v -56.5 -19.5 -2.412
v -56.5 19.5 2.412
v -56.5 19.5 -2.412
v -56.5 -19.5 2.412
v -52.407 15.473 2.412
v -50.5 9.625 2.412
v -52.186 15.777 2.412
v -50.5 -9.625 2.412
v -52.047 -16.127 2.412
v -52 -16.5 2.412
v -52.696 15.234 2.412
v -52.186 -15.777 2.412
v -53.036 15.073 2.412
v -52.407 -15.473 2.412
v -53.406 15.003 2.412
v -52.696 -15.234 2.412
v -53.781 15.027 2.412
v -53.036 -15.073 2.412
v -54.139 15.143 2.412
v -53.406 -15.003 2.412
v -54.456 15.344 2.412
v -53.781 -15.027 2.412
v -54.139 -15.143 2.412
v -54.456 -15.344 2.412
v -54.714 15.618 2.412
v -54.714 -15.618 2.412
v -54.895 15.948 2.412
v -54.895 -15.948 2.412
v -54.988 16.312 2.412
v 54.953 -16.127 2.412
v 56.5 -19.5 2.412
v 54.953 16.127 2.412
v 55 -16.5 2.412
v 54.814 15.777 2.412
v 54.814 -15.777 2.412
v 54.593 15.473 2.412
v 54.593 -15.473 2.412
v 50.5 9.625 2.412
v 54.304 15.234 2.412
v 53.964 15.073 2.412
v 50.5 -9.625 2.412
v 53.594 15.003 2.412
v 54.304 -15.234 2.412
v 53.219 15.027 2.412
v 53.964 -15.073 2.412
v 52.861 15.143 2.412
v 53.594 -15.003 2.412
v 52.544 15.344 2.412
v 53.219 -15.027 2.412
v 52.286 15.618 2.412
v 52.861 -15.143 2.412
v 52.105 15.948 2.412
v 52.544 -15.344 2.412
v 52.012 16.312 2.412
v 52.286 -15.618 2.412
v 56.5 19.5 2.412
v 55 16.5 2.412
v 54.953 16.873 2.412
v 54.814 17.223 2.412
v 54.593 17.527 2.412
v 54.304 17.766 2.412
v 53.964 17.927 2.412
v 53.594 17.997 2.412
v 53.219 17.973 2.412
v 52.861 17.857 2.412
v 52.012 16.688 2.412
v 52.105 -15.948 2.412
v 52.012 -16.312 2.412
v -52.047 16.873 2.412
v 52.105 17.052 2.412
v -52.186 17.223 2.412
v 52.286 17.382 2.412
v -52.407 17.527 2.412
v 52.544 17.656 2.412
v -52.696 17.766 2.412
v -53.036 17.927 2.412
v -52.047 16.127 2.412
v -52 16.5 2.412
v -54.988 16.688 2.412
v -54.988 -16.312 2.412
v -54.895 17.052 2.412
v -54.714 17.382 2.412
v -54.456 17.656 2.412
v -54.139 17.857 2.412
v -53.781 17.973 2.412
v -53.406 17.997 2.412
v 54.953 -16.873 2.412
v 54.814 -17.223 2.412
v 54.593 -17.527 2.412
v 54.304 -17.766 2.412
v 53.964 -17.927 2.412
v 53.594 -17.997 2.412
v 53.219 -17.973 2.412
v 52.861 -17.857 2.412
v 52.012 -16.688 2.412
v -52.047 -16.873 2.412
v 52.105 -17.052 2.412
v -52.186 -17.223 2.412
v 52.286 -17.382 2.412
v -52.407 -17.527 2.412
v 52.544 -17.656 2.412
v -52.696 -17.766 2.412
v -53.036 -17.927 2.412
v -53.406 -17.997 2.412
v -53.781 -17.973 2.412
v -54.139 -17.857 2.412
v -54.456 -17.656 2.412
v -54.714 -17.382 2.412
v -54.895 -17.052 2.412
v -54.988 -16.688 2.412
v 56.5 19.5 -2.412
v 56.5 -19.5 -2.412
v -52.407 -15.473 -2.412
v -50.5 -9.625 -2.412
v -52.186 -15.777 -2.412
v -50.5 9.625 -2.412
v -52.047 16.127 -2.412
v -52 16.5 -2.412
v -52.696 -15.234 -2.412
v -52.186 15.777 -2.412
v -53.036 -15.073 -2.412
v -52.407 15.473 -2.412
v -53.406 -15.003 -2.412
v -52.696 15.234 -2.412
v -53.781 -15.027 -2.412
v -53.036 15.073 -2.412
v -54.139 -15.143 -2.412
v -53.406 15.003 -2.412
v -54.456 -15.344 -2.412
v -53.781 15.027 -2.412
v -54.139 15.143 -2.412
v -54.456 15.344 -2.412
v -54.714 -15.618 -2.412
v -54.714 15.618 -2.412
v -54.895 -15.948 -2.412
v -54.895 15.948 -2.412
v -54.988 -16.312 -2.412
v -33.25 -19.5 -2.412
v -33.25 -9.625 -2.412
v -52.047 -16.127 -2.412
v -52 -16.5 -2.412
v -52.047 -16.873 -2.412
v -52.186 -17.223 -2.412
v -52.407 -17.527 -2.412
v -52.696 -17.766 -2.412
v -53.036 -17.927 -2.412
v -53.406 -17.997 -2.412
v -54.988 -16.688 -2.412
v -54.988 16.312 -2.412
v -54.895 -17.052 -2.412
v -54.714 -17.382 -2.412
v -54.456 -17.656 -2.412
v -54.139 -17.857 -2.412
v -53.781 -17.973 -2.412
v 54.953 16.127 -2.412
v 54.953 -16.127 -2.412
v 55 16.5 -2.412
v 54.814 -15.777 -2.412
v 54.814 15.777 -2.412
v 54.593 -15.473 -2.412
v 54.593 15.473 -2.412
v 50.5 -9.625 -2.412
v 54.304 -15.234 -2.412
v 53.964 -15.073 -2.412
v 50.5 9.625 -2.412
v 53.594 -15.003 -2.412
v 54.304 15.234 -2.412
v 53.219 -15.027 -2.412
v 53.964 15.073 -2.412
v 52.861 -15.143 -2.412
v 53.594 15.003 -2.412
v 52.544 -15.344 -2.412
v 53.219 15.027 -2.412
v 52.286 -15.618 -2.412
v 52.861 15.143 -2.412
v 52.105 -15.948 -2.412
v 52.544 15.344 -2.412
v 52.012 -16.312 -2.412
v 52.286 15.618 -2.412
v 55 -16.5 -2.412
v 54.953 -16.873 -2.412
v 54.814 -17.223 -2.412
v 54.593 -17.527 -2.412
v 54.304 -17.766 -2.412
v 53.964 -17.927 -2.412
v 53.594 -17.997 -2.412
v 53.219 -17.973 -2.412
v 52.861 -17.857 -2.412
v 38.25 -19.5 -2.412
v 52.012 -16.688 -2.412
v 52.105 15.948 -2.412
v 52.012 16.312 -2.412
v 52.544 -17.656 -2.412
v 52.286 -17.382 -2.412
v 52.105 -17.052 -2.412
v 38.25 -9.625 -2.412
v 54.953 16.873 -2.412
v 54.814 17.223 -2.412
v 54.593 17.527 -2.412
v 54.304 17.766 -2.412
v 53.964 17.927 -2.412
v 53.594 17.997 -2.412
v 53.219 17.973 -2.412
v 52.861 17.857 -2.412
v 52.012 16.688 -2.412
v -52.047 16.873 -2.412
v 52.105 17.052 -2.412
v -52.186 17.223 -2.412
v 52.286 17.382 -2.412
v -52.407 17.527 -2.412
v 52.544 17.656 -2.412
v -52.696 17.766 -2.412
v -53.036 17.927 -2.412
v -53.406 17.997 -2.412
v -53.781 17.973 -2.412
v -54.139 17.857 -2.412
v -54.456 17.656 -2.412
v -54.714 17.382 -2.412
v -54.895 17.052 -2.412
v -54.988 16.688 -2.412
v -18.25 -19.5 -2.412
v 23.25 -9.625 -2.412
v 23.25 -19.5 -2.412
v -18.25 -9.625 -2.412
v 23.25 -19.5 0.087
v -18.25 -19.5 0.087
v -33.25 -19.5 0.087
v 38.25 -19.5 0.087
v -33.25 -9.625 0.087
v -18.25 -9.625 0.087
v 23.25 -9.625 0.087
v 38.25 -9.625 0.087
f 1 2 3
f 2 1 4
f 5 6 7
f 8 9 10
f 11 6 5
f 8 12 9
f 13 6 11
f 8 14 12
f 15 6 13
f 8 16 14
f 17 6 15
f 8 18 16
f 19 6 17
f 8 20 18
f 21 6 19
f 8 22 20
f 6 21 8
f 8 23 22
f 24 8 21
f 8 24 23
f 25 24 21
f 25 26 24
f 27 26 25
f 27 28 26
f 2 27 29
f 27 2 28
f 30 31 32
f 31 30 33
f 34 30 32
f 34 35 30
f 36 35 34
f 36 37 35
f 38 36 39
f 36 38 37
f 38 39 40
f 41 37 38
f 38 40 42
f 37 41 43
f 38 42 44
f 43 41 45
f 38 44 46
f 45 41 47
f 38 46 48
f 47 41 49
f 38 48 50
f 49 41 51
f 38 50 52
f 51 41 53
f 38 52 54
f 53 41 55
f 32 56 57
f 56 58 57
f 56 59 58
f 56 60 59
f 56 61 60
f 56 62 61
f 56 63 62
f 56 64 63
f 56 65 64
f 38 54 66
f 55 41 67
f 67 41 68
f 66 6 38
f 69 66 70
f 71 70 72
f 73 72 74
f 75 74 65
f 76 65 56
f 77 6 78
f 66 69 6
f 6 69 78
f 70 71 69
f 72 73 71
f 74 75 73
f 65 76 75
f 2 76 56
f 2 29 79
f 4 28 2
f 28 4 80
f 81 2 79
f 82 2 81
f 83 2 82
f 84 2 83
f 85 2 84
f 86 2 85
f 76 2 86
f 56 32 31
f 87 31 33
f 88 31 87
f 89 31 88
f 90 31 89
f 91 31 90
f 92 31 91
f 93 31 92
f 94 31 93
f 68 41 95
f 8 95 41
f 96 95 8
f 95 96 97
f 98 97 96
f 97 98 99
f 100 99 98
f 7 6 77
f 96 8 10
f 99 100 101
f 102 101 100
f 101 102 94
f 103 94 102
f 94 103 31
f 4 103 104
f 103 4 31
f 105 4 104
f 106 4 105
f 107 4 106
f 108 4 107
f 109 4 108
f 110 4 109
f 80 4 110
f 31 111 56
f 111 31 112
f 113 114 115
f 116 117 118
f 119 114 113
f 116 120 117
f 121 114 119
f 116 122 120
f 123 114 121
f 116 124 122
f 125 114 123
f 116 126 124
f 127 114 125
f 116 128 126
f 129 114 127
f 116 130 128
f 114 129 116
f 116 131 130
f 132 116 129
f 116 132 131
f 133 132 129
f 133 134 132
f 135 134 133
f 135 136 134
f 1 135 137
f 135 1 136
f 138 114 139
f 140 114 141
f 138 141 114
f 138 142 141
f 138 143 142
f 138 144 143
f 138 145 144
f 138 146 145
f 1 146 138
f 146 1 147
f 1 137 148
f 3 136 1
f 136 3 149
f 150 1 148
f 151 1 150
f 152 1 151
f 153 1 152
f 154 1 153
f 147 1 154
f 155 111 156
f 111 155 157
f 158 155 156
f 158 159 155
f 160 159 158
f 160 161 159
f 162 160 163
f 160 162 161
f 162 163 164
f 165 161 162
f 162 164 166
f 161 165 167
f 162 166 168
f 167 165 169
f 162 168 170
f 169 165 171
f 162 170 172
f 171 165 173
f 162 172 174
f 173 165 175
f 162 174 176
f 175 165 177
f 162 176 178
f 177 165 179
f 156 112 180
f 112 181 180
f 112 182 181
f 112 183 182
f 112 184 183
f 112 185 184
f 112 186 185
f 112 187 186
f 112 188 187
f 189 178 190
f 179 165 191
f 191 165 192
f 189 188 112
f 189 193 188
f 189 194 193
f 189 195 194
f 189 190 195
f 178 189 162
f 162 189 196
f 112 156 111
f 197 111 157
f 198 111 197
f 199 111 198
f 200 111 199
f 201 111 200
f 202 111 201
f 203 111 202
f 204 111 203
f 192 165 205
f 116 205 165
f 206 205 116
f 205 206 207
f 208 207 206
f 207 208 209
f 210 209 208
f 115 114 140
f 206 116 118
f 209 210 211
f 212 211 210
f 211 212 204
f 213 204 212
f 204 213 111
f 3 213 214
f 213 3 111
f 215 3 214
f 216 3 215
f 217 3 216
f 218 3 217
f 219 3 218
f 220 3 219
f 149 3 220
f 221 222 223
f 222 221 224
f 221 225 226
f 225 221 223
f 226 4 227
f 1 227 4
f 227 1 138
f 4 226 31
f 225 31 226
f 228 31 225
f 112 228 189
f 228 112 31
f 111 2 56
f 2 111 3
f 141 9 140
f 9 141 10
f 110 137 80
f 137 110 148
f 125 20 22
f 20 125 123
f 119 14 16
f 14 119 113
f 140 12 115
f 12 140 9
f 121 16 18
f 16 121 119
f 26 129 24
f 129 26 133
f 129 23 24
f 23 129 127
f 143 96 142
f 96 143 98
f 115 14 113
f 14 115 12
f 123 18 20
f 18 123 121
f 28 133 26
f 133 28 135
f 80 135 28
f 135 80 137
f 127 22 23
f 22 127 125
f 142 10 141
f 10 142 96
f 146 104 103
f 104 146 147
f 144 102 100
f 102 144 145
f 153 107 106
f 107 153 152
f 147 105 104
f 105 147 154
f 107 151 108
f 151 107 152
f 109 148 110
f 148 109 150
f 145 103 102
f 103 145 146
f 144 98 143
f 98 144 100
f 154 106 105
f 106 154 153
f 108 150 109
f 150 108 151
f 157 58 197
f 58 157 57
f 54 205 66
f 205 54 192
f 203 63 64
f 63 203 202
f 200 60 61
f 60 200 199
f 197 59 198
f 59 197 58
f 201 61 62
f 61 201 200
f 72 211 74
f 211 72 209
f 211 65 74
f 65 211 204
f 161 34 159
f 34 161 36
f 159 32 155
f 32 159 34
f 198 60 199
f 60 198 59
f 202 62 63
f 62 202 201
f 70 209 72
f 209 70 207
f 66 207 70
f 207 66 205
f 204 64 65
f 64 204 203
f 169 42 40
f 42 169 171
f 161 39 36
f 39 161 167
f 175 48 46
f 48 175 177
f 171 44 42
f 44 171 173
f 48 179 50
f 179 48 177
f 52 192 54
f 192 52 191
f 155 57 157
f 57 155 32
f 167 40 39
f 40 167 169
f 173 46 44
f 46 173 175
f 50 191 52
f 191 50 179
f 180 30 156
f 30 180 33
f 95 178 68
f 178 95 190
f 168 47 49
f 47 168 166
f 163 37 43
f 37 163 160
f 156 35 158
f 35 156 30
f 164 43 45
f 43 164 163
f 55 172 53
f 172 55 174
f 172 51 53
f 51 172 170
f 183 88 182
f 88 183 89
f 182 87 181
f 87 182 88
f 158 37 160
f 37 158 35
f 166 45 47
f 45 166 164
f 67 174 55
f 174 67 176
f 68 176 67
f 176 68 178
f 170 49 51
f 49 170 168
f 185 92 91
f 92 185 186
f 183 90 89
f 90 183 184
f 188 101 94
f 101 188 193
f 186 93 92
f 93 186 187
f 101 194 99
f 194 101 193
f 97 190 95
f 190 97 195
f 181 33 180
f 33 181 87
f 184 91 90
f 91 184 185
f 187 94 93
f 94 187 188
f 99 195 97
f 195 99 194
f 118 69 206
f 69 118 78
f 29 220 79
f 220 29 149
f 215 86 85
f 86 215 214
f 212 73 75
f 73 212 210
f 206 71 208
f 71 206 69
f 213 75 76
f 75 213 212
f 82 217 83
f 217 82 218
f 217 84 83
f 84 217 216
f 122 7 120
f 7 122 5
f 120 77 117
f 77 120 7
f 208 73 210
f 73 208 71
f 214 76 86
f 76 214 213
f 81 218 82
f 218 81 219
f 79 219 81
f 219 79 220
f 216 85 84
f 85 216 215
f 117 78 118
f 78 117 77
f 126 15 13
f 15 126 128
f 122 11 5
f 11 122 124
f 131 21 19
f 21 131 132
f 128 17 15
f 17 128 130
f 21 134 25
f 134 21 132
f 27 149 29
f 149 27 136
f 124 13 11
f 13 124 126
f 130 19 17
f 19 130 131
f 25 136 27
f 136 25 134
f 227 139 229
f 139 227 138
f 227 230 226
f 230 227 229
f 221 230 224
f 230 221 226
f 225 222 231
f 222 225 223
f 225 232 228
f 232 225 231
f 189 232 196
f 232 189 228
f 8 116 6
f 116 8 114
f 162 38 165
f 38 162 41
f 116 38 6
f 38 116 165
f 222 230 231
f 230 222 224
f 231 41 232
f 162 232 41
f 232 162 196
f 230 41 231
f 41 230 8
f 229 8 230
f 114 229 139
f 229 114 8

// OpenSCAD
x = 101;
x2 = 113;
y = 19.25;
y2 = 27;
y3 = 39;
z = 8-3.175;
rad = 3/2;
$fn = 25;

difference()
{
    base();
    cube([x,y,z+1],center=true);
}

module base(){
    translate([-x2/2,-y3/2,-z/2])
    difference(){
        cube([x2,y3,z]);
        translate([3,3,-.5])
            cylinder(r=rad,h=z+1);
        translate([x2-3,y3-3,-.5])
            cylinder(r=rad,h=z+1);
        translate([x2-3,3,-.5])
            cylinder(r=rad,h=z+1);
        translate([3,y3-3,-.5])
            cylinder(r=rad,h=z+1);
        
        translate([x2/4-5,-.5,-.5])
            cube([15,15,3]);
        translate([x2-(x2/4+5),-.5,-.5])
            cube([15,15,3]);
    }
}
